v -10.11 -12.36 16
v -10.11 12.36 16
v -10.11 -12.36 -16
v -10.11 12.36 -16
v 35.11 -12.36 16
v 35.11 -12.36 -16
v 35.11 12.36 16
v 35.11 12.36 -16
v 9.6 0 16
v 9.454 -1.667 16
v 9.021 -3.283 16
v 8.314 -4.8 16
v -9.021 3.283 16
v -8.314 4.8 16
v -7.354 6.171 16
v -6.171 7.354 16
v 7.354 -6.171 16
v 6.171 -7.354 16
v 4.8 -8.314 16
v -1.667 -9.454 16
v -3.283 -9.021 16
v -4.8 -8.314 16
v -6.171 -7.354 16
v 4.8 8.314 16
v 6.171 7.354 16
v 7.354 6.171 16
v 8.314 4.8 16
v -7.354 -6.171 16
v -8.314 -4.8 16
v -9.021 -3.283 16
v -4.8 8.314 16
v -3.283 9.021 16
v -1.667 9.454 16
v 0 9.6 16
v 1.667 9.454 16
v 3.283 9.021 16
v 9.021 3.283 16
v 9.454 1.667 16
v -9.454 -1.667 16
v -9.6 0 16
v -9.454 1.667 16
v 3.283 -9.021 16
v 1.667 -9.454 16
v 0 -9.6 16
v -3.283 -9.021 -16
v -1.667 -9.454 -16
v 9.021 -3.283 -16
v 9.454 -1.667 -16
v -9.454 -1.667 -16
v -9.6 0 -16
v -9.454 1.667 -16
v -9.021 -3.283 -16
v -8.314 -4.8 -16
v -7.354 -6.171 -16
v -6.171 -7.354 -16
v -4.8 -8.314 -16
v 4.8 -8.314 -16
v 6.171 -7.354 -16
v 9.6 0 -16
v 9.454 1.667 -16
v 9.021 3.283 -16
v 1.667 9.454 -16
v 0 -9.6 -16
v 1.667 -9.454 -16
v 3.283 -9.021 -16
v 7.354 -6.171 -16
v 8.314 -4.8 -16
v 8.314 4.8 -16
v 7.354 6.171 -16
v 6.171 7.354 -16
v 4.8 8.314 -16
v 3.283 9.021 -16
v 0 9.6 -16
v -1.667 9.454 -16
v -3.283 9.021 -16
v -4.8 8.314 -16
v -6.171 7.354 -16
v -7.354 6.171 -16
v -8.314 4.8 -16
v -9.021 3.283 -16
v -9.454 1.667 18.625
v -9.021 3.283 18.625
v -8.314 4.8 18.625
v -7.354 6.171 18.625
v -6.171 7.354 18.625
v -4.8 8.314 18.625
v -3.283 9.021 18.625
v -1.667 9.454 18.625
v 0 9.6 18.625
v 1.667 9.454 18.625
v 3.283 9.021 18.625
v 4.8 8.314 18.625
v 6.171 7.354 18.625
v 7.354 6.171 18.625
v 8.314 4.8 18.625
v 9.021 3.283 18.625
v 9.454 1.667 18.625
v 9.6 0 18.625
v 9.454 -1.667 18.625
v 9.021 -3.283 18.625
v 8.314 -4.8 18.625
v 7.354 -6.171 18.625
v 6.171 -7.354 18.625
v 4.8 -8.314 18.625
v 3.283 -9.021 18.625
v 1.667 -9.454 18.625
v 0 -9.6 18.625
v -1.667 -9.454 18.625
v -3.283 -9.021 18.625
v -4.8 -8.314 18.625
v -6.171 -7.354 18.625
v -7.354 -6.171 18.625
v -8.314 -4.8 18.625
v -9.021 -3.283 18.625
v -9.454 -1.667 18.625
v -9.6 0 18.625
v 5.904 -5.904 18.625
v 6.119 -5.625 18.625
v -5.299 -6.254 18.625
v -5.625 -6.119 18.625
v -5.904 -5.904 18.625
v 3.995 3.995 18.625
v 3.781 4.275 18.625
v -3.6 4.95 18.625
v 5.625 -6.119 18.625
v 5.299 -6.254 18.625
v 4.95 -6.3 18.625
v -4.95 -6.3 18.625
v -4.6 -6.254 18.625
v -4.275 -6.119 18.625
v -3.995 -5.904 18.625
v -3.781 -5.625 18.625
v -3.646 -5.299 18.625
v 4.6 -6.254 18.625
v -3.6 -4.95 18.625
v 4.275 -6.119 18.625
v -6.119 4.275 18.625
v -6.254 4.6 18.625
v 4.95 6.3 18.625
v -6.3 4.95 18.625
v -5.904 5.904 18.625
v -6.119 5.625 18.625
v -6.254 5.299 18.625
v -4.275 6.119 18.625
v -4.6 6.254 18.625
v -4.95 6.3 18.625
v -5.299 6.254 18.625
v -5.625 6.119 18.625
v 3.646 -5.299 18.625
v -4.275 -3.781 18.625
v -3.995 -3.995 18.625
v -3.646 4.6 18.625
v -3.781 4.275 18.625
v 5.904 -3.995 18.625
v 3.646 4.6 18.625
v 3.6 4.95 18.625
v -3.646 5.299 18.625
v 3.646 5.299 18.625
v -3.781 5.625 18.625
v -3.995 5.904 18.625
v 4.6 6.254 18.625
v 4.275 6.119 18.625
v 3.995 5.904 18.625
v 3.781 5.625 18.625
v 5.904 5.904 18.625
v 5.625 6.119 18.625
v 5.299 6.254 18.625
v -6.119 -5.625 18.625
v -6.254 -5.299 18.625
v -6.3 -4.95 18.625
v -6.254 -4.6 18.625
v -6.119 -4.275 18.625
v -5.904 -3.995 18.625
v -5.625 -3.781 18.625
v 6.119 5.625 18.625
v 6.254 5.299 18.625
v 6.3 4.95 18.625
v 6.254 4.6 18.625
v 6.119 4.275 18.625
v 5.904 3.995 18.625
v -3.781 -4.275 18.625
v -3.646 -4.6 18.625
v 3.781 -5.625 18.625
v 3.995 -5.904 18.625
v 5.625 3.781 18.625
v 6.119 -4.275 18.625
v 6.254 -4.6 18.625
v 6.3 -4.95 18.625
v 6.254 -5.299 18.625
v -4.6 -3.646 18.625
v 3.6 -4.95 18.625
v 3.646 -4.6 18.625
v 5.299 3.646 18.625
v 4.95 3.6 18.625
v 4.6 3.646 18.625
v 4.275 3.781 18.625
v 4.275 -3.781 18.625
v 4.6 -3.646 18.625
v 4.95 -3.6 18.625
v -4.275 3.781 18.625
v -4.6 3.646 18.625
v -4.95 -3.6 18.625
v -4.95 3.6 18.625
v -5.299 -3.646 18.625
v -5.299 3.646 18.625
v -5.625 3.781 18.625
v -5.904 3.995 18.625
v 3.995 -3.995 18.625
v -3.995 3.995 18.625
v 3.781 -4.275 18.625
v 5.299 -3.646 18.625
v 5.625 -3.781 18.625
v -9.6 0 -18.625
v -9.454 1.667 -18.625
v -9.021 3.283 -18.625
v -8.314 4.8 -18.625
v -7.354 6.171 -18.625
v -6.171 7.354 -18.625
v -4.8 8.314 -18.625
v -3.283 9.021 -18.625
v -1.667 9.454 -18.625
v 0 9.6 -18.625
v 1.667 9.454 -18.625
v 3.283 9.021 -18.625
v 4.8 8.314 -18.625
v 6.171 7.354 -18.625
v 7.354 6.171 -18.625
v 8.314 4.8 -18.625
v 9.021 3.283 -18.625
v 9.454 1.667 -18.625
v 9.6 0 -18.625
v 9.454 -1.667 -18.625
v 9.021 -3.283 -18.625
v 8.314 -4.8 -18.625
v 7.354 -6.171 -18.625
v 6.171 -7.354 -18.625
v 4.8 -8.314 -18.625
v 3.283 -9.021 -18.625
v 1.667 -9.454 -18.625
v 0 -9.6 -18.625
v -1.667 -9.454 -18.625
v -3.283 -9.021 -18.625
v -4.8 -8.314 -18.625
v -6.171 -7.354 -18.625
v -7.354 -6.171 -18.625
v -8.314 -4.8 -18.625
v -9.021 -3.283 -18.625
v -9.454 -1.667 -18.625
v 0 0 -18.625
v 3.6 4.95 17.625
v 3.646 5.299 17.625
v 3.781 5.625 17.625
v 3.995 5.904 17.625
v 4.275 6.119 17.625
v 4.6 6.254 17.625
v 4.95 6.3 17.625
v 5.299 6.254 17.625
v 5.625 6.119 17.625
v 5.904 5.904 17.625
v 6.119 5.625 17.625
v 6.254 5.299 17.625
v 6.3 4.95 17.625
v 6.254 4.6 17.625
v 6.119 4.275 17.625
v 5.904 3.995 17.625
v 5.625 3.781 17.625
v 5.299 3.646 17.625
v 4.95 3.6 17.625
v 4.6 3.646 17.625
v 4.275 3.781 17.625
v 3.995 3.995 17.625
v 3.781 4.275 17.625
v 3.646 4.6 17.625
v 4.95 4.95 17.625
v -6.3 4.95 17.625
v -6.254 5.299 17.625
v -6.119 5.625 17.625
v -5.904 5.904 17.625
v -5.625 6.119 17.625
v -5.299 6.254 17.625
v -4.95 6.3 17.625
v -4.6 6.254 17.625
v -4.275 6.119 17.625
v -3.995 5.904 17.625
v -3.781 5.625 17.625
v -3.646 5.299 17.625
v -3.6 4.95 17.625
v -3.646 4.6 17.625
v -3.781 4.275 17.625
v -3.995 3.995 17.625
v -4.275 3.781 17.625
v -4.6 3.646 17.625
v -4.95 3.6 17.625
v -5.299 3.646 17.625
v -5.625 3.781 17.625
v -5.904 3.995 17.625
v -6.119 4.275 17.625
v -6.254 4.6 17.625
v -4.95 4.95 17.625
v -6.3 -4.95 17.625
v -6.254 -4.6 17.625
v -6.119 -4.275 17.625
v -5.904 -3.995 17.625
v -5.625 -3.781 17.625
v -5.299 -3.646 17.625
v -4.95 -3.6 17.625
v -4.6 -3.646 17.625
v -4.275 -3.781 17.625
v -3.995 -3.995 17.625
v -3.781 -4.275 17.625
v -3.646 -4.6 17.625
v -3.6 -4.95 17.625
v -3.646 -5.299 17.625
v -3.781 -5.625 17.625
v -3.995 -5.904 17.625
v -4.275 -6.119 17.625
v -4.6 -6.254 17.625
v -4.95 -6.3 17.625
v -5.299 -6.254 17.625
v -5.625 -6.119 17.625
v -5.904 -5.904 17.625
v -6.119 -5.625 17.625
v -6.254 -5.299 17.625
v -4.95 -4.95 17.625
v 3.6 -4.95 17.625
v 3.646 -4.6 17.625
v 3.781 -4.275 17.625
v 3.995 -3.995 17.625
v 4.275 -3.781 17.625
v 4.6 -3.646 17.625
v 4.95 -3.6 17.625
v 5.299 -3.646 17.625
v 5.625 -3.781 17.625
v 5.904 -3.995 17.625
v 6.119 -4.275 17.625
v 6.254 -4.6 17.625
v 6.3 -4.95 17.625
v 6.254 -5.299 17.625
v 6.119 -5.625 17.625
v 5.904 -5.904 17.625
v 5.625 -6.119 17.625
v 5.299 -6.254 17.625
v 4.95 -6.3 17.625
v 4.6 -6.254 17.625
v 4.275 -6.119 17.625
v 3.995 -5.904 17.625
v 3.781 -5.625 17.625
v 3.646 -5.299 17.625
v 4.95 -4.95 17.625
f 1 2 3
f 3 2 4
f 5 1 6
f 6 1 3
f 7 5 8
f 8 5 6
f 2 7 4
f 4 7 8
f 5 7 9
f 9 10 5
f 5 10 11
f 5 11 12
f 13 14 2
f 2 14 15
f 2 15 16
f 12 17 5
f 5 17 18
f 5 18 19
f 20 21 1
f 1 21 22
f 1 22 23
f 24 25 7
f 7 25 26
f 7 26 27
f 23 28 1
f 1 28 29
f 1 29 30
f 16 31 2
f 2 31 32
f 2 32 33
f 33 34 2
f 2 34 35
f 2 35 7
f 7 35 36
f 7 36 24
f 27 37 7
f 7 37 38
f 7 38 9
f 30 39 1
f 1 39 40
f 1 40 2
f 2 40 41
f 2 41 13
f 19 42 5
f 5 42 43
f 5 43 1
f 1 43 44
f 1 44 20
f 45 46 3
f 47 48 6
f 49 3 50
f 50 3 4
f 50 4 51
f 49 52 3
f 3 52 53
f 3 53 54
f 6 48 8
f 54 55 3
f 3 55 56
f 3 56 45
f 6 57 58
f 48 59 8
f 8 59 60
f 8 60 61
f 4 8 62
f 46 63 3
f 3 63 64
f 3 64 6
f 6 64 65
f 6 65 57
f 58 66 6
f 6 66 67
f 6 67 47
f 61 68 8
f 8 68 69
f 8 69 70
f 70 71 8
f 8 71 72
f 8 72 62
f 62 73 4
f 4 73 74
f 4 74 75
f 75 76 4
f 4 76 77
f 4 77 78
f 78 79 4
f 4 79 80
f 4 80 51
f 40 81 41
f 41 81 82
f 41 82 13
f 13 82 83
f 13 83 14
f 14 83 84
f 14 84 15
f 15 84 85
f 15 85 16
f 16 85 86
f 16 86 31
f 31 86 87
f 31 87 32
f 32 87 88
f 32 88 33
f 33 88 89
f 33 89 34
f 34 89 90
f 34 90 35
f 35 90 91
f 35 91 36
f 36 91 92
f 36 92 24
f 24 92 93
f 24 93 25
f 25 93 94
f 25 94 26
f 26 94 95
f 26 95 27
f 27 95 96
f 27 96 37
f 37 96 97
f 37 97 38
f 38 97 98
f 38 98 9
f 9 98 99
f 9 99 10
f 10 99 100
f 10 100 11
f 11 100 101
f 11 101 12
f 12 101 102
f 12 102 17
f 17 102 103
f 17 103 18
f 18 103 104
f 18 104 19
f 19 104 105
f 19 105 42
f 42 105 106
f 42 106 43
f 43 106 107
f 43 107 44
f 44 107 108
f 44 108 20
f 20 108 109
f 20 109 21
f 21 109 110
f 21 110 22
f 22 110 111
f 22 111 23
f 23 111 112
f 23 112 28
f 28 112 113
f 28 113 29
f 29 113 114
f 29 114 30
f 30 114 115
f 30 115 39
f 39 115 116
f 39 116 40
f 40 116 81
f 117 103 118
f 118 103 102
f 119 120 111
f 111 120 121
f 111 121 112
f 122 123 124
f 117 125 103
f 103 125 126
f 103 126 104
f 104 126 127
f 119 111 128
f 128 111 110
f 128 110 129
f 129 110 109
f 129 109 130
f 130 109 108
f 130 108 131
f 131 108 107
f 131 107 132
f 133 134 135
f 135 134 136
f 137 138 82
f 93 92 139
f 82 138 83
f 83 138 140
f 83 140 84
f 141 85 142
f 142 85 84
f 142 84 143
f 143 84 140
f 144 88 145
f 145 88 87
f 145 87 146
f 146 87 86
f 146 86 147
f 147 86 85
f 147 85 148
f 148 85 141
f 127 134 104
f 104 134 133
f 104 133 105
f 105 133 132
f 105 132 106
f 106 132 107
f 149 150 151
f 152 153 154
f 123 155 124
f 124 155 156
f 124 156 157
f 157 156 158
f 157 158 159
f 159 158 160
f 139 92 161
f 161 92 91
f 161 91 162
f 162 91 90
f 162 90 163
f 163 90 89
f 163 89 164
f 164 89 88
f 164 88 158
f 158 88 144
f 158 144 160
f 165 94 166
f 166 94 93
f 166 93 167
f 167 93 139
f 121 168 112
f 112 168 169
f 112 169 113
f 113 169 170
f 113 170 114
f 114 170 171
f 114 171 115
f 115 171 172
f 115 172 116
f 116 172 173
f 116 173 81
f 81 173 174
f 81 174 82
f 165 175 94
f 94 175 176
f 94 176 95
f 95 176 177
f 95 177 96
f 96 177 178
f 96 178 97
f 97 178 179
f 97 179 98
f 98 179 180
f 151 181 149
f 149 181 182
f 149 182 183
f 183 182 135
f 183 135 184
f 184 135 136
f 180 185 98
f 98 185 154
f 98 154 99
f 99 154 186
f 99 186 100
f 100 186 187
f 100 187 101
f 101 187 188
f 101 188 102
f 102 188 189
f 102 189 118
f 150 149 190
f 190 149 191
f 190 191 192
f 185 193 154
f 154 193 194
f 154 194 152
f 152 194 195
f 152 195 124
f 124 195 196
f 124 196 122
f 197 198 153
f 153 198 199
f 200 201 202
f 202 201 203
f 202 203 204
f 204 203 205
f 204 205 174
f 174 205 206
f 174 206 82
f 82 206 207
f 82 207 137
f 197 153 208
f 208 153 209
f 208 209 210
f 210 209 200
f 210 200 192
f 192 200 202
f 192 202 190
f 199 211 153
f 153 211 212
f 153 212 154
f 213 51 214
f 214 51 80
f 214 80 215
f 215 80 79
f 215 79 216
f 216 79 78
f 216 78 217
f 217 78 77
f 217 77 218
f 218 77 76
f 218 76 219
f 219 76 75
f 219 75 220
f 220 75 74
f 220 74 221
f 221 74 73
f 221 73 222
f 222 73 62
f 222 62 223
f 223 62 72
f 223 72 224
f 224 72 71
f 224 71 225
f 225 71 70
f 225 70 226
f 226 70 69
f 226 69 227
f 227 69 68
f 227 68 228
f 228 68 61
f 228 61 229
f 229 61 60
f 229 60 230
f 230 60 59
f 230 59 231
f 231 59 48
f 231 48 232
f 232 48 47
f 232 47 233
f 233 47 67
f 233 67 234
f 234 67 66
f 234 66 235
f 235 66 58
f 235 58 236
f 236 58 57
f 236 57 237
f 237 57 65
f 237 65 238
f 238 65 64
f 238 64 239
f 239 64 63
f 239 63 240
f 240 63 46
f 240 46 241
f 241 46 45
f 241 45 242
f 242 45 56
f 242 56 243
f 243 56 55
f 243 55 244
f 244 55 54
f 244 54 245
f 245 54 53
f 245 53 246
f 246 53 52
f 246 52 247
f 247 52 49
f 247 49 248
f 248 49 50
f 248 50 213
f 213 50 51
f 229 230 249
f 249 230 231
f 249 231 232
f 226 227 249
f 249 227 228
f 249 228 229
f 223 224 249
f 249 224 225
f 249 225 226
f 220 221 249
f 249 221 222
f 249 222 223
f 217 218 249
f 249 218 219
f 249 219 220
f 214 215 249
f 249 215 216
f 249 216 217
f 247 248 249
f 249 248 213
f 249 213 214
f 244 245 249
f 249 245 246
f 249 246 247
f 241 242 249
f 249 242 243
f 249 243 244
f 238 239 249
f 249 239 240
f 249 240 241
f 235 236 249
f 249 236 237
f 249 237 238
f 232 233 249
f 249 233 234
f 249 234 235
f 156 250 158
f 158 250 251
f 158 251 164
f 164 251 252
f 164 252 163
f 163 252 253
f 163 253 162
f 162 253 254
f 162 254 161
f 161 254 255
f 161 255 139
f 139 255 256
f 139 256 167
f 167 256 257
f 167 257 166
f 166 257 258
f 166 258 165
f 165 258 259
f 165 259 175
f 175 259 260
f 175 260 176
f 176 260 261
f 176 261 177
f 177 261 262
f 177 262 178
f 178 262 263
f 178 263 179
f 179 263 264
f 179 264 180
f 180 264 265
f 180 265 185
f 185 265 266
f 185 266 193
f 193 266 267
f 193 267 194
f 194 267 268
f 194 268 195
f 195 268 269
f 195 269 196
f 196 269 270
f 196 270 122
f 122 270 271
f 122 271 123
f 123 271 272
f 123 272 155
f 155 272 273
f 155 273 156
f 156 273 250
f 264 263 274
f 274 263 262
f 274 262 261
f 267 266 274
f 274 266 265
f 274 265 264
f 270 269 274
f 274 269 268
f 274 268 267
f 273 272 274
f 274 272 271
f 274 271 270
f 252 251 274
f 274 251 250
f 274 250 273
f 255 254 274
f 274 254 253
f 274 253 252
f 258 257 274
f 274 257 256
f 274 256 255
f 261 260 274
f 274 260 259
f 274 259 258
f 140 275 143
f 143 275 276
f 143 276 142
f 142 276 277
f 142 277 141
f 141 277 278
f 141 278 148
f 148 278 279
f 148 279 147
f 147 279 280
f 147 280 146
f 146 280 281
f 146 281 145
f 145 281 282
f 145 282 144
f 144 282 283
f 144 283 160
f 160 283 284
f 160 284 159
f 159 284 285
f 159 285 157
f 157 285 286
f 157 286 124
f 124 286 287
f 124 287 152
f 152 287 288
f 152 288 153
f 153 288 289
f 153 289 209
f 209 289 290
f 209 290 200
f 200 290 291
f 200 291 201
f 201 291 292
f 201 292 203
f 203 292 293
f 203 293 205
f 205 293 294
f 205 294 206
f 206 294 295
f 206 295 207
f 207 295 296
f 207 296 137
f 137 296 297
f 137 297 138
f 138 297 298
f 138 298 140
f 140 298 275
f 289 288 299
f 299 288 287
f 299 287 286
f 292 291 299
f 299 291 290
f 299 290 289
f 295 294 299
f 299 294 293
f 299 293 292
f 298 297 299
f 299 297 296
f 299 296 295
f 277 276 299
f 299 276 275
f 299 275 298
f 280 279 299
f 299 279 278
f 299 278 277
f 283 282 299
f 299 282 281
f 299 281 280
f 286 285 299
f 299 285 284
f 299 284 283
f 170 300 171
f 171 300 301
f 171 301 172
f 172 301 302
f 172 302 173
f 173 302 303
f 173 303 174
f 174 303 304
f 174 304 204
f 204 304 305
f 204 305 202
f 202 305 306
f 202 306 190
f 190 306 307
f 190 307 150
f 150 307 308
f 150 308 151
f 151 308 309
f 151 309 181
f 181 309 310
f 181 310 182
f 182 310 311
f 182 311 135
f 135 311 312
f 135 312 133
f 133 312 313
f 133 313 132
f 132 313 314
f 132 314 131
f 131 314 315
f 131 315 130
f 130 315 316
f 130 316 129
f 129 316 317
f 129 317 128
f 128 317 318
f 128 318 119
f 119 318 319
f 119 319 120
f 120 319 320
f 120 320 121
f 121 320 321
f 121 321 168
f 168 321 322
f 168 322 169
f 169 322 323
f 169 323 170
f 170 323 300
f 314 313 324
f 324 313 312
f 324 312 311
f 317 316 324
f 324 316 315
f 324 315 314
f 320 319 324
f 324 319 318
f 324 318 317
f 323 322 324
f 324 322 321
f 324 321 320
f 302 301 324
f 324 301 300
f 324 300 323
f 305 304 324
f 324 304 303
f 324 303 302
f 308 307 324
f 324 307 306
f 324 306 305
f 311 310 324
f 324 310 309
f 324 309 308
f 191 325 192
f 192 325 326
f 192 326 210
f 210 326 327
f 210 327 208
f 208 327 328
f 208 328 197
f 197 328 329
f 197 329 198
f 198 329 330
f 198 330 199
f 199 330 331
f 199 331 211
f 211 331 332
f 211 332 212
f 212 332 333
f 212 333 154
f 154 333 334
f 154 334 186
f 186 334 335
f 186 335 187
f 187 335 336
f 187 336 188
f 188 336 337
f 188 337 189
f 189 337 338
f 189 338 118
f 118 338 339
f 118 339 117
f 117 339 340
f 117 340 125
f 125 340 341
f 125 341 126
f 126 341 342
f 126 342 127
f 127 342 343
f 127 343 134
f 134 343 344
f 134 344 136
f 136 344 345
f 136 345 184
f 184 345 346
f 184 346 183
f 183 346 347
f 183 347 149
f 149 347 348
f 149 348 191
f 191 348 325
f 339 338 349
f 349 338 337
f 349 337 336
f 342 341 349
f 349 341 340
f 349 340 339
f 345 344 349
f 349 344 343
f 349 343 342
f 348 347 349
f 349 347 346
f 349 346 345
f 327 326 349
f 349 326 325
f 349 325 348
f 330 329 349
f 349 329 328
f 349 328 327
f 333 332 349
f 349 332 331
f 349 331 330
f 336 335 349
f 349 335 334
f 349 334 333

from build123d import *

# Parameters (mm, degrees)
S_BOX1_W     = 45.22
S_BOX1_H     = 24.72
BOSS_1_DEPTH = 32
S_CYL2_R     = 9.6
BOSS_2_DEPTH = 3.125
S_CYL3_R     = 9.6
BOSS_3_DEPTH = 3.125
S_HOLE4_R    = 1.35
HOLE_4_DEPTH = 1.1
S_HOLE5_R    = 1.35
HOLE_5_DEPTH = 1.1
S_HOLE6_R    = 1.35
HOLE_6_DEPTH = 1.1
S_HOLE7_R    = 1.35
HOLE_7_DEPTH = 1.1


with BuildPart() as part:
    # S_box1 → Boss_1 (new body)
    with BuildSketch(Plane.XY.offset(-16)):
        with Locations((12.5, 0)):
            Rectangle(S_BOX1_W, S_BOX1_H)
    extrude(amount=BOSS_1_DEPTH)

    # S_cyl2 → Boss_2 (add)
    with BuildSketch(Plane.XY.offset(15.5)):
        Circle(S_CYL2_R)
    extrude(amount=BOSS_2_DEPTH)

    # S_cyl3 → Boss_3 (add)
    with BuildSketch(Plane.XY.offset(-18.625)):
        Circle(S_CYL3_R)
    extrude(amount=BOSS_3_DEPTH)

    # S_hole4 → Hole_4 (cut)
    with BuildSketch(Plane.XY.offset(17.625)):
        with Locations((4.949747468, 4.949747468)):
            Circle(S_HOLE4_R)
    extrude(amount=HOLE_4_DEPTH, mode=Mode.SUBTRACT)

    # S_hole5 → Hole_5 (cut)
    with BuildSketch(Plane.XY.offset(17.625)):
        with Locations((-4.949747468, 4.949747468)):
            Circle(S_HOLE5_R)
    extrude(amount=HOLE_5_DEPTH, mode=Mode.SUBTRACT)

    # S_hole6 → Hole_6 (cut)
    with BuildSketch(Plane.XY.offset(17.625)):
        with Locations((-4.949747468, -4.949747468)):
            Circle(S_HOLE6_R)
    extrude(amount=HOLE_6_DEPTH, mode=Mode.SUBTRACT)

    # S_hole7 → Hole_7 (cut)
    with BuildSketch(Plane.XY.offset(17.625)):
        with Locations((4.949747468, -4.949747468)):
            Circle(S_HOLE7_R)
    extrude(amount=HOLE_7_DEPTH, mode=Mode.SUBTRACT)


solid = part.part
